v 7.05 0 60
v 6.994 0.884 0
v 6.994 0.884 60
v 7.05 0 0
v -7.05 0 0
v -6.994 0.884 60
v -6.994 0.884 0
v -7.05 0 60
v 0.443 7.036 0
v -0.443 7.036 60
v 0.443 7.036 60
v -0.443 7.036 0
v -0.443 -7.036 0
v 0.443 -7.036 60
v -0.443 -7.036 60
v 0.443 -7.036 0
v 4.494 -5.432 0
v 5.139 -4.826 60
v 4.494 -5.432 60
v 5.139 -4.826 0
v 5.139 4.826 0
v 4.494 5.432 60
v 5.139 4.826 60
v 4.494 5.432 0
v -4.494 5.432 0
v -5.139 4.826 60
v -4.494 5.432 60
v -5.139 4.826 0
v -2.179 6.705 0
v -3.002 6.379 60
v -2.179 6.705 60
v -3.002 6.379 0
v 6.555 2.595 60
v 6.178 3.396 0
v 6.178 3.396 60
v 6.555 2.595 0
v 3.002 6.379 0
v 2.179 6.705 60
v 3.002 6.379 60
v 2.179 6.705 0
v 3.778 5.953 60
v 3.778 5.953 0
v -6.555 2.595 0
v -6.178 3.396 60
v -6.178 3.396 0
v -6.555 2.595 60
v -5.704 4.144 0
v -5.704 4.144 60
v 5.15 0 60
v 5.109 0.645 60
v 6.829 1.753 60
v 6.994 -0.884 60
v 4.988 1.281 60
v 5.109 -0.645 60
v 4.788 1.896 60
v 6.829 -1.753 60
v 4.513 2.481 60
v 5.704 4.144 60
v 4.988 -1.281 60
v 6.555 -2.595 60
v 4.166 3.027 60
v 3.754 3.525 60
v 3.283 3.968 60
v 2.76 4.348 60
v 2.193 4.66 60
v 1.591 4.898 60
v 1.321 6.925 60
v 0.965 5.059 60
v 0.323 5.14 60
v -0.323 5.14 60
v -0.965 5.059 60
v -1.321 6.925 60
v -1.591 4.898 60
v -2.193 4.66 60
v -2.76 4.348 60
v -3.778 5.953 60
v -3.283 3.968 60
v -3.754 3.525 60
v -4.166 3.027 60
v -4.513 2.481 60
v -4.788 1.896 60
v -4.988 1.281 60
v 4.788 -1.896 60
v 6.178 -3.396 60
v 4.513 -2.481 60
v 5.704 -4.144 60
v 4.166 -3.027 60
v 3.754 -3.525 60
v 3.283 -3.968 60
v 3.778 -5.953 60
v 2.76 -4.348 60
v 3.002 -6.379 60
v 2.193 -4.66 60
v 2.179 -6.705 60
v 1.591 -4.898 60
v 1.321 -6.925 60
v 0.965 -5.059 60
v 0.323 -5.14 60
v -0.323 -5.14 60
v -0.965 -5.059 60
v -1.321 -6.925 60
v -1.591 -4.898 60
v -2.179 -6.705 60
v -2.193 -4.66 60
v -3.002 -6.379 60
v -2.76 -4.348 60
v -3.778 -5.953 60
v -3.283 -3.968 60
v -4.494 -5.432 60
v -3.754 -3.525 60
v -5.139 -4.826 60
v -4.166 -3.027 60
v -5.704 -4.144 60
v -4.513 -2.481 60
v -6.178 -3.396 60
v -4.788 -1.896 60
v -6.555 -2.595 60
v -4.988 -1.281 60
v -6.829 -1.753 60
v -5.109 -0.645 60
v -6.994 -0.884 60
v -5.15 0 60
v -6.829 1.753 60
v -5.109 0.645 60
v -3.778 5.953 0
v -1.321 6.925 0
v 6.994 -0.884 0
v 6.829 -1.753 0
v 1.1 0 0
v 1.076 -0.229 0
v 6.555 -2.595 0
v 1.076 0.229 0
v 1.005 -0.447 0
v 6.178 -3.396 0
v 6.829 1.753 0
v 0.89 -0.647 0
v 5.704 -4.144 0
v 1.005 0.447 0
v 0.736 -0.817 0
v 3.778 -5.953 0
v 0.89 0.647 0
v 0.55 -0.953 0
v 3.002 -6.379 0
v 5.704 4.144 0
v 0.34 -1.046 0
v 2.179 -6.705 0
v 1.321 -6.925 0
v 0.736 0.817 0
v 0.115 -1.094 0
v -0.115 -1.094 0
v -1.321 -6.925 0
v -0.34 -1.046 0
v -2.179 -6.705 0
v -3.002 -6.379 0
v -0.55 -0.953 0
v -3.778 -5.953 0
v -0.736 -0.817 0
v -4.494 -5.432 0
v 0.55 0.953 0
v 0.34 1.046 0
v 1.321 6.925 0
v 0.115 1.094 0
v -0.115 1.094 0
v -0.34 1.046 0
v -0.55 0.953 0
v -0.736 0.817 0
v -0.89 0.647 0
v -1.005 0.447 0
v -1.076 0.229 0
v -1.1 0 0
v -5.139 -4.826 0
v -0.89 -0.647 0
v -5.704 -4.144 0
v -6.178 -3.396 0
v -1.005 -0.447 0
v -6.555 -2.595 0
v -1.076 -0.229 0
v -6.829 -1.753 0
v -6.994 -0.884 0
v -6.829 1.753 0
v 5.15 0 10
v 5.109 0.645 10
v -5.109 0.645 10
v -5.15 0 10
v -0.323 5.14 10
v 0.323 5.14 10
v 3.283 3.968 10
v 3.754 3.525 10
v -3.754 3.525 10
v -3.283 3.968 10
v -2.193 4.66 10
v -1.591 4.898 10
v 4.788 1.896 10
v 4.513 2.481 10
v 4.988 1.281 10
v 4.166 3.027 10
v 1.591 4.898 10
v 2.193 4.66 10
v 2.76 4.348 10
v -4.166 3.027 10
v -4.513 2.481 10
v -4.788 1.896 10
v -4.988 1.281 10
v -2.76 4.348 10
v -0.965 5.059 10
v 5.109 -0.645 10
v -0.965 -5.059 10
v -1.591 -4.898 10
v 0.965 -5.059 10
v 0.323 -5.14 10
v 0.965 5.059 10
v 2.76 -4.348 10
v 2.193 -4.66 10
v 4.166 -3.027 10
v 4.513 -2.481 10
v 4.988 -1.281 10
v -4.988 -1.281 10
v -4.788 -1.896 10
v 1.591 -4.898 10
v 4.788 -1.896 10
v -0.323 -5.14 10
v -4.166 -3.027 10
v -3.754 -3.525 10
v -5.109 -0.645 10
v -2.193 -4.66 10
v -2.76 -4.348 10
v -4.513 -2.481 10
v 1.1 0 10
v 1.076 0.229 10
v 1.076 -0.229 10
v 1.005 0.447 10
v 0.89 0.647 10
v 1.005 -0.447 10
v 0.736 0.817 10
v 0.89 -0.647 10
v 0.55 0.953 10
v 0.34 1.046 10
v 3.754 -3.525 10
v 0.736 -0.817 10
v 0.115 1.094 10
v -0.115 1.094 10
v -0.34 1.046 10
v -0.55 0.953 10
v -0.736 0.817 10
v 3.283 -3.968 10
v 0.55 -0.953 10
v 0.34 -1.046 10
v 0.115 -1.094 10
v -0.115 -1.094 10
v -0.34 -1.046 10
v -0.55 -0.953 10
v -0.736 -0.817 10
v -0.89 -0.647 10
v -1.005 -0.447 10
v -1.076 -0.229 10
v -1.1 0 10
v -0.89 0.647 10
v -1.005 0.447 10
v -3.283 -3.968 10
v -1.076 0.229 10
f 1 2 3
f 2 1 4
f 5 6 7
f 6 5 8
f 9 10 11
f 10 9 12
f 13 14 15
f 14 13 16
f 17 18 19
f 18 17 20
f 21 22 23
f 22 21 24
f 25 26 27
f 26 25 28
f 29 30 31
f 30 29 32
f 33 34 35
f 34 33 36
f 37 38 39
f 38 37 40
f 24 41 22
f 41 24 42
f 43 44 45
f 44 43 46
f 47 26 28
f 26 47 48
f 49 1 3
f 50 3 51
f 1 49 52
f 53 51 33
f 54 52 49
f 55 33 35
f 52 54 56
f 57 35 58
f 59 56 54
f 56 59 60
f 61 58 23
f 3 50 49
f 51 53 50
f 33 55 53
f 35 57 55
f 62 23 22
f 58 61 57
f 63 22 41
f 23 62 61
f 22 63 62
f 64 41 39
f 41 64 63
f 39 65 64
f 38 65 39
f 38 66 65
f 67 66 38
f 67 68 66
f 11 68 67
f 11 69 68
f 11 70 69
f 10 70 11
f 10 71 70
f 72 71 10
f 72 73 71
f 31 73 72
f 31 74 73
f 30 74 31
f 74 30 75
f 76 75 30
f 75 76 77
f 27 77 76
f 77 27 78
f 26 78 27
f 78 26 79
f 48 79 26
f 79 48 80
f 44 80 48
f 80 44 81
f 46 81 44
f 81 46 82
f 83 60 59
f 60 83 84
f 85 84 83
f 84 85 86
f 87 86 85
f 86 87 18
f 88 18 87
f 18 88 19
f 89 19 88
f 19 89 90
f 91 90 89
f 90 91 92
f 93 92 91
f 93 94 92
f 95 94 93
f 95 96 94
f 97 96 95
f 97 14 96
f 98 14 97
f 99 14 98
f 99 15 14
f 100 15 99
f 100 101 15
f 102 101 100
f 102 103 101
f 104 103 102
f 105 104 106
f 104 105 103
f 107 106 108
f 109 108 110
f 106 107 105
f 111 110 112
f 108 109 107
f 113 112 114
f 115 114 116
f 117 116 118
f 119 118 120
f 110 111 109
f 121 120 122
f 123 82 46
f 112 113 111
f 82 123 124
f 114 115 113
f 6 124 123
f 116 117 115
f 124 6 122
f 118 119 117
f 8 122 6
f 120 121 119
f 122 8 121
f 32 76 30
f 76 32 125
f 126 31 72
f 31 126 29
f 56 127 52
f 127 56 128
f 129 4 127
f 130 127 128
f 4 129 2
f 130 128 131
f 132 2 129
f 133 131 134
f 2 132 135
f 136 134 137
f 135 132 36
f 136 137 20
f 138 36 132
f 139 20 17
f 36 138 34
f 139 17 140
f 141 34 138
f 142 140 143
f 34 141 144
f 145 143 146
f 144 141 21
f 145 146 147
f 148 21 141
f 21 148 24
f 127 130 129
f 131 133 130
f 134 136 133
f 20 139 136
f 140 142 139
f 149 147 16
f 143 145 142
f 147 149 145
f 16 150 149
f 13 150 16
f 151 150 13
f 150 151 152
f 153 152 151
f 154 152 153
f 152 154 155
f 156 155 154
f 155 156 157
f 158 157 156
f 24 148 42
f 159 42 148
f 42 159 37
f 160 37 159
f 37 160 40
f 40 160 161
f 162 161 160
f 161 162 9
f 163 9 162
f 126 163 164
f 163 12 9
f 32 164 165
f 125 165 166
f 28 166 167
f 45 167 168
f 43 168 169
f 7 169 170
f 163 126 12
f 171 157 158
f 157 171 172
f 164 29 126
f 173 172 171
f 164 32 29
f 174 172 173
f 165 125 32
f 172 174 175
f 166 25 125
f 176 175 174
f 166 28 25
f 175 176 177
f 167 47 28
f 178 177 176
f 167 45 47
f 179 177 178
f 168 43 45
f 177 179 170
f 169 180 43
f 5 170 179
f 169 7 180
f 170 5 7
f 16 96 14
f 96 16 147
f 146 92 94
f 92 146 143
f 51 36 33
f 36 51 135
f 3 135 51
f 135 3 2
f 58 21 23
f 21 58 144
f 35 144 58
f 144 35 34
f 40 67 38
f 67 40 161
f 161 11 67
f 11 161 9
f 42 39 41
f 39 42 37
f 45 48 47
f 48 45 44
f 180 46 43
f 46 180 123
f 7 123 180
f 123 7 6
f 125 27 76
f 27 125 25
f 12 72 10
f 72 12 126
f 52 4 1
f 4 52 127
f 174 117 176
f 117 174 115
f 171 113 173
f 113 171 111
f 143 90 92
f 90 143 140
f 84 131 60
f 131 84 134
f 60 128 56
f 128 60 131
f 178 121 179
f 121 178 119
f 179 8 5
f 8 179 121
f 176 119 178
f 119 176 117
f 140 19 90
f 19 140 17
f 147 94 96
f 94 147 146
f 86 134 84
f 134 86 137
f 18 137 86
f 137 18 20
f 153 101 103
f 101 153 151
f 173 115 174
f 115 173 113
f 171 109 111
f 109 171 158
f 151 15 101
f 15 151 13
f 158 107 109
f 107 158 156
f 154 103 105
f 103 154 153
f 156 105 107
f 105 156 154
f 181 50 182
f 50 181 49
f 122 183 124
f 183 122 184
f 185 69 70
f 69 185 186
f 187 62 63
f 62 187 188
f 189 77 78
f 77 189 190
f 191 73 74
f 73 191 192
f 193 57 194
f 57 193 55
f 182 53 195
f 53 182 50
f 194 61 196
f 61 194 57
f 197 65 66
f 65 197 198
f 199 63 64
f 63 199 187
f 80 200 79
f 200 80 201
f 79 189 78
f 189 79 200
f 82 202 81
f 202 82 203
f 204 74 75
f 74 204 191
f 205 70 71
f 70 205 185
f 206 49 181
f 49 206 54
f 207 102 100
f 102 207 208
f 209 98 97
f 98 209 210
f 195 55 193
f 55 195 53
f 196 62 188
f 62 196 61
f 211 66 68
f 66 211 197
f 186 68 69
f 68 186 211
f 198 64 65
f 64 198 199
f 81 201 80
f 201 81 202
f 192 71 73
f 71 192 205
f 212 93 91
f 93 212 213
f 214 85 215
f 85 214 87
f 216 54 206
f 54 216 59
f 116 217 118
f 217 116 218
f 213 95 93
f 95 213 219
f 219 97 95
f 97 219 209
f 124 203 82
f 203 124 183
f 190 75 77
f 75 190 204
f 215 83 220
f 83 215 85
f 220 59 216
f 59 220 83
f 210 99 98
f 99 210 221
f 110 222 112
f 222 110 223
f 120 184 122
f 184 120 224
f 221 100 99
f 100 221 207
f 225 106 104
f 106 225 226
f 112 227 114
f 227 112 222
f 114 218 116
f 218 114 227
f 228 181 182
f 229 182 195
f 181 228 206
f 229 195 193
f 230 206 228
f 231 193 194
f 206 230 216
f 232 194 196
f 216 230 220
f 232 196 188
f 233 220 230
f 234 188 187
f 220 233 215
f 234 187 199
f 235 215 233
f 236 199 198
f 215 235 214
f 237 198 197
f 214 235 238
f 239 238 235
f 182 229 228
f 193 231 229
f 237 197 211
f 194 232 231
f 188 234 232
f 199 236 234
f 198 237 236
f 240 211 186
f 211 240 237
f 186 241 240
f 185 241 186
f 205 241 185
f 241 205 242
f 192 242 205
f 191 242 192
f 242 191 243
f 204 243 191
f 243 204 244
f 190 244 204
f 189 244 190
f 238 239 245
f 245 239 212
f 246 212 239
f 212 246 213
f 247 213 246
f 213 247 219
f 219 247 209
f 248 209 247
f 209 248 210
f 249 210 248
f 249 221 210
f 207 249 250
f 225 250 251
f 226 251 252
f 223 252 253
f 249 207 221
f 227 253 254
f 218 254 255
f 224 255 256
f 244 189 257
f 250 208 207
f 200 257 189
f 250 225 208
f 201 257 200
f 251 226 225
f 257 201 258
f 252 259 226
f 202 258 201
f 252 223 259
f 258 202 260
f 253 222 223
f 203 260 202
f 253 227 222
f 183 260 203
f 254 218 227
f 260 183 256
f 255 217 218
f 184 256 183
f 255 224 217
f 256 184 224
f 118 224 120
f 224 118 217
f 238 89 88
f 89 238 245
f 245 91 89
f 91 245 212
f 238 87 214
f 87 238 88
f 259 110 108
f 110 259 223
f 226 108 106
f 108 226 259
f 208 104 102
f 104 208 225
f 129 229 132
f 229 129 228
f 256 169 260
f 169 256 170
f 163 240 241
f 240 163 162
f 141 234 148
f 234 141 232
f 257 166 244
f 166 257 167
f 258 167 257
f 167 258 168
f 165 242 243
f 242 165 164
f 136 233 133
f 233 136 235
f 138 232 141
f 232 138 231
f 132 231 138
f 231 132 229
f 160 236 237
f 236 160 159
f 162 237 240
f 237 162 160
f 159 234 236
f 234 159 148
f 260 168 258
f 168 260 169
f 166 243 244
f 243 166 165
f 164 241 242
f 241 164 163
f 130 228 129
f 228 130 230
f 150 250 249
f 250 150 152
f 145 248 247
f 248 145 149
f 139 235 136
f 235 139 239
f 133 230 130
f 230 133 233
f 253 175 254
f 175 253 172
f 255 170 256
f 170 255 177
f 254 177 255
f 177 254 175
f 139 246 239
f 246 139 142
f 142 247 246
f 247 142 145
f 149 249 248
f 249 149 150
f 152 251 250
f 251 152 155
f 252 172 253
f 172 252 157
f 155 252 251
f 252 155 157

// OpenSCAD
difference() {
    cylinder(d=14.1,h=60,$fn=50);
    translate([0,0,10]) cylinder(d=10.3,h=60,$fn=50);
    cylinder(d=2.2,h=12,$fn=30);
}
